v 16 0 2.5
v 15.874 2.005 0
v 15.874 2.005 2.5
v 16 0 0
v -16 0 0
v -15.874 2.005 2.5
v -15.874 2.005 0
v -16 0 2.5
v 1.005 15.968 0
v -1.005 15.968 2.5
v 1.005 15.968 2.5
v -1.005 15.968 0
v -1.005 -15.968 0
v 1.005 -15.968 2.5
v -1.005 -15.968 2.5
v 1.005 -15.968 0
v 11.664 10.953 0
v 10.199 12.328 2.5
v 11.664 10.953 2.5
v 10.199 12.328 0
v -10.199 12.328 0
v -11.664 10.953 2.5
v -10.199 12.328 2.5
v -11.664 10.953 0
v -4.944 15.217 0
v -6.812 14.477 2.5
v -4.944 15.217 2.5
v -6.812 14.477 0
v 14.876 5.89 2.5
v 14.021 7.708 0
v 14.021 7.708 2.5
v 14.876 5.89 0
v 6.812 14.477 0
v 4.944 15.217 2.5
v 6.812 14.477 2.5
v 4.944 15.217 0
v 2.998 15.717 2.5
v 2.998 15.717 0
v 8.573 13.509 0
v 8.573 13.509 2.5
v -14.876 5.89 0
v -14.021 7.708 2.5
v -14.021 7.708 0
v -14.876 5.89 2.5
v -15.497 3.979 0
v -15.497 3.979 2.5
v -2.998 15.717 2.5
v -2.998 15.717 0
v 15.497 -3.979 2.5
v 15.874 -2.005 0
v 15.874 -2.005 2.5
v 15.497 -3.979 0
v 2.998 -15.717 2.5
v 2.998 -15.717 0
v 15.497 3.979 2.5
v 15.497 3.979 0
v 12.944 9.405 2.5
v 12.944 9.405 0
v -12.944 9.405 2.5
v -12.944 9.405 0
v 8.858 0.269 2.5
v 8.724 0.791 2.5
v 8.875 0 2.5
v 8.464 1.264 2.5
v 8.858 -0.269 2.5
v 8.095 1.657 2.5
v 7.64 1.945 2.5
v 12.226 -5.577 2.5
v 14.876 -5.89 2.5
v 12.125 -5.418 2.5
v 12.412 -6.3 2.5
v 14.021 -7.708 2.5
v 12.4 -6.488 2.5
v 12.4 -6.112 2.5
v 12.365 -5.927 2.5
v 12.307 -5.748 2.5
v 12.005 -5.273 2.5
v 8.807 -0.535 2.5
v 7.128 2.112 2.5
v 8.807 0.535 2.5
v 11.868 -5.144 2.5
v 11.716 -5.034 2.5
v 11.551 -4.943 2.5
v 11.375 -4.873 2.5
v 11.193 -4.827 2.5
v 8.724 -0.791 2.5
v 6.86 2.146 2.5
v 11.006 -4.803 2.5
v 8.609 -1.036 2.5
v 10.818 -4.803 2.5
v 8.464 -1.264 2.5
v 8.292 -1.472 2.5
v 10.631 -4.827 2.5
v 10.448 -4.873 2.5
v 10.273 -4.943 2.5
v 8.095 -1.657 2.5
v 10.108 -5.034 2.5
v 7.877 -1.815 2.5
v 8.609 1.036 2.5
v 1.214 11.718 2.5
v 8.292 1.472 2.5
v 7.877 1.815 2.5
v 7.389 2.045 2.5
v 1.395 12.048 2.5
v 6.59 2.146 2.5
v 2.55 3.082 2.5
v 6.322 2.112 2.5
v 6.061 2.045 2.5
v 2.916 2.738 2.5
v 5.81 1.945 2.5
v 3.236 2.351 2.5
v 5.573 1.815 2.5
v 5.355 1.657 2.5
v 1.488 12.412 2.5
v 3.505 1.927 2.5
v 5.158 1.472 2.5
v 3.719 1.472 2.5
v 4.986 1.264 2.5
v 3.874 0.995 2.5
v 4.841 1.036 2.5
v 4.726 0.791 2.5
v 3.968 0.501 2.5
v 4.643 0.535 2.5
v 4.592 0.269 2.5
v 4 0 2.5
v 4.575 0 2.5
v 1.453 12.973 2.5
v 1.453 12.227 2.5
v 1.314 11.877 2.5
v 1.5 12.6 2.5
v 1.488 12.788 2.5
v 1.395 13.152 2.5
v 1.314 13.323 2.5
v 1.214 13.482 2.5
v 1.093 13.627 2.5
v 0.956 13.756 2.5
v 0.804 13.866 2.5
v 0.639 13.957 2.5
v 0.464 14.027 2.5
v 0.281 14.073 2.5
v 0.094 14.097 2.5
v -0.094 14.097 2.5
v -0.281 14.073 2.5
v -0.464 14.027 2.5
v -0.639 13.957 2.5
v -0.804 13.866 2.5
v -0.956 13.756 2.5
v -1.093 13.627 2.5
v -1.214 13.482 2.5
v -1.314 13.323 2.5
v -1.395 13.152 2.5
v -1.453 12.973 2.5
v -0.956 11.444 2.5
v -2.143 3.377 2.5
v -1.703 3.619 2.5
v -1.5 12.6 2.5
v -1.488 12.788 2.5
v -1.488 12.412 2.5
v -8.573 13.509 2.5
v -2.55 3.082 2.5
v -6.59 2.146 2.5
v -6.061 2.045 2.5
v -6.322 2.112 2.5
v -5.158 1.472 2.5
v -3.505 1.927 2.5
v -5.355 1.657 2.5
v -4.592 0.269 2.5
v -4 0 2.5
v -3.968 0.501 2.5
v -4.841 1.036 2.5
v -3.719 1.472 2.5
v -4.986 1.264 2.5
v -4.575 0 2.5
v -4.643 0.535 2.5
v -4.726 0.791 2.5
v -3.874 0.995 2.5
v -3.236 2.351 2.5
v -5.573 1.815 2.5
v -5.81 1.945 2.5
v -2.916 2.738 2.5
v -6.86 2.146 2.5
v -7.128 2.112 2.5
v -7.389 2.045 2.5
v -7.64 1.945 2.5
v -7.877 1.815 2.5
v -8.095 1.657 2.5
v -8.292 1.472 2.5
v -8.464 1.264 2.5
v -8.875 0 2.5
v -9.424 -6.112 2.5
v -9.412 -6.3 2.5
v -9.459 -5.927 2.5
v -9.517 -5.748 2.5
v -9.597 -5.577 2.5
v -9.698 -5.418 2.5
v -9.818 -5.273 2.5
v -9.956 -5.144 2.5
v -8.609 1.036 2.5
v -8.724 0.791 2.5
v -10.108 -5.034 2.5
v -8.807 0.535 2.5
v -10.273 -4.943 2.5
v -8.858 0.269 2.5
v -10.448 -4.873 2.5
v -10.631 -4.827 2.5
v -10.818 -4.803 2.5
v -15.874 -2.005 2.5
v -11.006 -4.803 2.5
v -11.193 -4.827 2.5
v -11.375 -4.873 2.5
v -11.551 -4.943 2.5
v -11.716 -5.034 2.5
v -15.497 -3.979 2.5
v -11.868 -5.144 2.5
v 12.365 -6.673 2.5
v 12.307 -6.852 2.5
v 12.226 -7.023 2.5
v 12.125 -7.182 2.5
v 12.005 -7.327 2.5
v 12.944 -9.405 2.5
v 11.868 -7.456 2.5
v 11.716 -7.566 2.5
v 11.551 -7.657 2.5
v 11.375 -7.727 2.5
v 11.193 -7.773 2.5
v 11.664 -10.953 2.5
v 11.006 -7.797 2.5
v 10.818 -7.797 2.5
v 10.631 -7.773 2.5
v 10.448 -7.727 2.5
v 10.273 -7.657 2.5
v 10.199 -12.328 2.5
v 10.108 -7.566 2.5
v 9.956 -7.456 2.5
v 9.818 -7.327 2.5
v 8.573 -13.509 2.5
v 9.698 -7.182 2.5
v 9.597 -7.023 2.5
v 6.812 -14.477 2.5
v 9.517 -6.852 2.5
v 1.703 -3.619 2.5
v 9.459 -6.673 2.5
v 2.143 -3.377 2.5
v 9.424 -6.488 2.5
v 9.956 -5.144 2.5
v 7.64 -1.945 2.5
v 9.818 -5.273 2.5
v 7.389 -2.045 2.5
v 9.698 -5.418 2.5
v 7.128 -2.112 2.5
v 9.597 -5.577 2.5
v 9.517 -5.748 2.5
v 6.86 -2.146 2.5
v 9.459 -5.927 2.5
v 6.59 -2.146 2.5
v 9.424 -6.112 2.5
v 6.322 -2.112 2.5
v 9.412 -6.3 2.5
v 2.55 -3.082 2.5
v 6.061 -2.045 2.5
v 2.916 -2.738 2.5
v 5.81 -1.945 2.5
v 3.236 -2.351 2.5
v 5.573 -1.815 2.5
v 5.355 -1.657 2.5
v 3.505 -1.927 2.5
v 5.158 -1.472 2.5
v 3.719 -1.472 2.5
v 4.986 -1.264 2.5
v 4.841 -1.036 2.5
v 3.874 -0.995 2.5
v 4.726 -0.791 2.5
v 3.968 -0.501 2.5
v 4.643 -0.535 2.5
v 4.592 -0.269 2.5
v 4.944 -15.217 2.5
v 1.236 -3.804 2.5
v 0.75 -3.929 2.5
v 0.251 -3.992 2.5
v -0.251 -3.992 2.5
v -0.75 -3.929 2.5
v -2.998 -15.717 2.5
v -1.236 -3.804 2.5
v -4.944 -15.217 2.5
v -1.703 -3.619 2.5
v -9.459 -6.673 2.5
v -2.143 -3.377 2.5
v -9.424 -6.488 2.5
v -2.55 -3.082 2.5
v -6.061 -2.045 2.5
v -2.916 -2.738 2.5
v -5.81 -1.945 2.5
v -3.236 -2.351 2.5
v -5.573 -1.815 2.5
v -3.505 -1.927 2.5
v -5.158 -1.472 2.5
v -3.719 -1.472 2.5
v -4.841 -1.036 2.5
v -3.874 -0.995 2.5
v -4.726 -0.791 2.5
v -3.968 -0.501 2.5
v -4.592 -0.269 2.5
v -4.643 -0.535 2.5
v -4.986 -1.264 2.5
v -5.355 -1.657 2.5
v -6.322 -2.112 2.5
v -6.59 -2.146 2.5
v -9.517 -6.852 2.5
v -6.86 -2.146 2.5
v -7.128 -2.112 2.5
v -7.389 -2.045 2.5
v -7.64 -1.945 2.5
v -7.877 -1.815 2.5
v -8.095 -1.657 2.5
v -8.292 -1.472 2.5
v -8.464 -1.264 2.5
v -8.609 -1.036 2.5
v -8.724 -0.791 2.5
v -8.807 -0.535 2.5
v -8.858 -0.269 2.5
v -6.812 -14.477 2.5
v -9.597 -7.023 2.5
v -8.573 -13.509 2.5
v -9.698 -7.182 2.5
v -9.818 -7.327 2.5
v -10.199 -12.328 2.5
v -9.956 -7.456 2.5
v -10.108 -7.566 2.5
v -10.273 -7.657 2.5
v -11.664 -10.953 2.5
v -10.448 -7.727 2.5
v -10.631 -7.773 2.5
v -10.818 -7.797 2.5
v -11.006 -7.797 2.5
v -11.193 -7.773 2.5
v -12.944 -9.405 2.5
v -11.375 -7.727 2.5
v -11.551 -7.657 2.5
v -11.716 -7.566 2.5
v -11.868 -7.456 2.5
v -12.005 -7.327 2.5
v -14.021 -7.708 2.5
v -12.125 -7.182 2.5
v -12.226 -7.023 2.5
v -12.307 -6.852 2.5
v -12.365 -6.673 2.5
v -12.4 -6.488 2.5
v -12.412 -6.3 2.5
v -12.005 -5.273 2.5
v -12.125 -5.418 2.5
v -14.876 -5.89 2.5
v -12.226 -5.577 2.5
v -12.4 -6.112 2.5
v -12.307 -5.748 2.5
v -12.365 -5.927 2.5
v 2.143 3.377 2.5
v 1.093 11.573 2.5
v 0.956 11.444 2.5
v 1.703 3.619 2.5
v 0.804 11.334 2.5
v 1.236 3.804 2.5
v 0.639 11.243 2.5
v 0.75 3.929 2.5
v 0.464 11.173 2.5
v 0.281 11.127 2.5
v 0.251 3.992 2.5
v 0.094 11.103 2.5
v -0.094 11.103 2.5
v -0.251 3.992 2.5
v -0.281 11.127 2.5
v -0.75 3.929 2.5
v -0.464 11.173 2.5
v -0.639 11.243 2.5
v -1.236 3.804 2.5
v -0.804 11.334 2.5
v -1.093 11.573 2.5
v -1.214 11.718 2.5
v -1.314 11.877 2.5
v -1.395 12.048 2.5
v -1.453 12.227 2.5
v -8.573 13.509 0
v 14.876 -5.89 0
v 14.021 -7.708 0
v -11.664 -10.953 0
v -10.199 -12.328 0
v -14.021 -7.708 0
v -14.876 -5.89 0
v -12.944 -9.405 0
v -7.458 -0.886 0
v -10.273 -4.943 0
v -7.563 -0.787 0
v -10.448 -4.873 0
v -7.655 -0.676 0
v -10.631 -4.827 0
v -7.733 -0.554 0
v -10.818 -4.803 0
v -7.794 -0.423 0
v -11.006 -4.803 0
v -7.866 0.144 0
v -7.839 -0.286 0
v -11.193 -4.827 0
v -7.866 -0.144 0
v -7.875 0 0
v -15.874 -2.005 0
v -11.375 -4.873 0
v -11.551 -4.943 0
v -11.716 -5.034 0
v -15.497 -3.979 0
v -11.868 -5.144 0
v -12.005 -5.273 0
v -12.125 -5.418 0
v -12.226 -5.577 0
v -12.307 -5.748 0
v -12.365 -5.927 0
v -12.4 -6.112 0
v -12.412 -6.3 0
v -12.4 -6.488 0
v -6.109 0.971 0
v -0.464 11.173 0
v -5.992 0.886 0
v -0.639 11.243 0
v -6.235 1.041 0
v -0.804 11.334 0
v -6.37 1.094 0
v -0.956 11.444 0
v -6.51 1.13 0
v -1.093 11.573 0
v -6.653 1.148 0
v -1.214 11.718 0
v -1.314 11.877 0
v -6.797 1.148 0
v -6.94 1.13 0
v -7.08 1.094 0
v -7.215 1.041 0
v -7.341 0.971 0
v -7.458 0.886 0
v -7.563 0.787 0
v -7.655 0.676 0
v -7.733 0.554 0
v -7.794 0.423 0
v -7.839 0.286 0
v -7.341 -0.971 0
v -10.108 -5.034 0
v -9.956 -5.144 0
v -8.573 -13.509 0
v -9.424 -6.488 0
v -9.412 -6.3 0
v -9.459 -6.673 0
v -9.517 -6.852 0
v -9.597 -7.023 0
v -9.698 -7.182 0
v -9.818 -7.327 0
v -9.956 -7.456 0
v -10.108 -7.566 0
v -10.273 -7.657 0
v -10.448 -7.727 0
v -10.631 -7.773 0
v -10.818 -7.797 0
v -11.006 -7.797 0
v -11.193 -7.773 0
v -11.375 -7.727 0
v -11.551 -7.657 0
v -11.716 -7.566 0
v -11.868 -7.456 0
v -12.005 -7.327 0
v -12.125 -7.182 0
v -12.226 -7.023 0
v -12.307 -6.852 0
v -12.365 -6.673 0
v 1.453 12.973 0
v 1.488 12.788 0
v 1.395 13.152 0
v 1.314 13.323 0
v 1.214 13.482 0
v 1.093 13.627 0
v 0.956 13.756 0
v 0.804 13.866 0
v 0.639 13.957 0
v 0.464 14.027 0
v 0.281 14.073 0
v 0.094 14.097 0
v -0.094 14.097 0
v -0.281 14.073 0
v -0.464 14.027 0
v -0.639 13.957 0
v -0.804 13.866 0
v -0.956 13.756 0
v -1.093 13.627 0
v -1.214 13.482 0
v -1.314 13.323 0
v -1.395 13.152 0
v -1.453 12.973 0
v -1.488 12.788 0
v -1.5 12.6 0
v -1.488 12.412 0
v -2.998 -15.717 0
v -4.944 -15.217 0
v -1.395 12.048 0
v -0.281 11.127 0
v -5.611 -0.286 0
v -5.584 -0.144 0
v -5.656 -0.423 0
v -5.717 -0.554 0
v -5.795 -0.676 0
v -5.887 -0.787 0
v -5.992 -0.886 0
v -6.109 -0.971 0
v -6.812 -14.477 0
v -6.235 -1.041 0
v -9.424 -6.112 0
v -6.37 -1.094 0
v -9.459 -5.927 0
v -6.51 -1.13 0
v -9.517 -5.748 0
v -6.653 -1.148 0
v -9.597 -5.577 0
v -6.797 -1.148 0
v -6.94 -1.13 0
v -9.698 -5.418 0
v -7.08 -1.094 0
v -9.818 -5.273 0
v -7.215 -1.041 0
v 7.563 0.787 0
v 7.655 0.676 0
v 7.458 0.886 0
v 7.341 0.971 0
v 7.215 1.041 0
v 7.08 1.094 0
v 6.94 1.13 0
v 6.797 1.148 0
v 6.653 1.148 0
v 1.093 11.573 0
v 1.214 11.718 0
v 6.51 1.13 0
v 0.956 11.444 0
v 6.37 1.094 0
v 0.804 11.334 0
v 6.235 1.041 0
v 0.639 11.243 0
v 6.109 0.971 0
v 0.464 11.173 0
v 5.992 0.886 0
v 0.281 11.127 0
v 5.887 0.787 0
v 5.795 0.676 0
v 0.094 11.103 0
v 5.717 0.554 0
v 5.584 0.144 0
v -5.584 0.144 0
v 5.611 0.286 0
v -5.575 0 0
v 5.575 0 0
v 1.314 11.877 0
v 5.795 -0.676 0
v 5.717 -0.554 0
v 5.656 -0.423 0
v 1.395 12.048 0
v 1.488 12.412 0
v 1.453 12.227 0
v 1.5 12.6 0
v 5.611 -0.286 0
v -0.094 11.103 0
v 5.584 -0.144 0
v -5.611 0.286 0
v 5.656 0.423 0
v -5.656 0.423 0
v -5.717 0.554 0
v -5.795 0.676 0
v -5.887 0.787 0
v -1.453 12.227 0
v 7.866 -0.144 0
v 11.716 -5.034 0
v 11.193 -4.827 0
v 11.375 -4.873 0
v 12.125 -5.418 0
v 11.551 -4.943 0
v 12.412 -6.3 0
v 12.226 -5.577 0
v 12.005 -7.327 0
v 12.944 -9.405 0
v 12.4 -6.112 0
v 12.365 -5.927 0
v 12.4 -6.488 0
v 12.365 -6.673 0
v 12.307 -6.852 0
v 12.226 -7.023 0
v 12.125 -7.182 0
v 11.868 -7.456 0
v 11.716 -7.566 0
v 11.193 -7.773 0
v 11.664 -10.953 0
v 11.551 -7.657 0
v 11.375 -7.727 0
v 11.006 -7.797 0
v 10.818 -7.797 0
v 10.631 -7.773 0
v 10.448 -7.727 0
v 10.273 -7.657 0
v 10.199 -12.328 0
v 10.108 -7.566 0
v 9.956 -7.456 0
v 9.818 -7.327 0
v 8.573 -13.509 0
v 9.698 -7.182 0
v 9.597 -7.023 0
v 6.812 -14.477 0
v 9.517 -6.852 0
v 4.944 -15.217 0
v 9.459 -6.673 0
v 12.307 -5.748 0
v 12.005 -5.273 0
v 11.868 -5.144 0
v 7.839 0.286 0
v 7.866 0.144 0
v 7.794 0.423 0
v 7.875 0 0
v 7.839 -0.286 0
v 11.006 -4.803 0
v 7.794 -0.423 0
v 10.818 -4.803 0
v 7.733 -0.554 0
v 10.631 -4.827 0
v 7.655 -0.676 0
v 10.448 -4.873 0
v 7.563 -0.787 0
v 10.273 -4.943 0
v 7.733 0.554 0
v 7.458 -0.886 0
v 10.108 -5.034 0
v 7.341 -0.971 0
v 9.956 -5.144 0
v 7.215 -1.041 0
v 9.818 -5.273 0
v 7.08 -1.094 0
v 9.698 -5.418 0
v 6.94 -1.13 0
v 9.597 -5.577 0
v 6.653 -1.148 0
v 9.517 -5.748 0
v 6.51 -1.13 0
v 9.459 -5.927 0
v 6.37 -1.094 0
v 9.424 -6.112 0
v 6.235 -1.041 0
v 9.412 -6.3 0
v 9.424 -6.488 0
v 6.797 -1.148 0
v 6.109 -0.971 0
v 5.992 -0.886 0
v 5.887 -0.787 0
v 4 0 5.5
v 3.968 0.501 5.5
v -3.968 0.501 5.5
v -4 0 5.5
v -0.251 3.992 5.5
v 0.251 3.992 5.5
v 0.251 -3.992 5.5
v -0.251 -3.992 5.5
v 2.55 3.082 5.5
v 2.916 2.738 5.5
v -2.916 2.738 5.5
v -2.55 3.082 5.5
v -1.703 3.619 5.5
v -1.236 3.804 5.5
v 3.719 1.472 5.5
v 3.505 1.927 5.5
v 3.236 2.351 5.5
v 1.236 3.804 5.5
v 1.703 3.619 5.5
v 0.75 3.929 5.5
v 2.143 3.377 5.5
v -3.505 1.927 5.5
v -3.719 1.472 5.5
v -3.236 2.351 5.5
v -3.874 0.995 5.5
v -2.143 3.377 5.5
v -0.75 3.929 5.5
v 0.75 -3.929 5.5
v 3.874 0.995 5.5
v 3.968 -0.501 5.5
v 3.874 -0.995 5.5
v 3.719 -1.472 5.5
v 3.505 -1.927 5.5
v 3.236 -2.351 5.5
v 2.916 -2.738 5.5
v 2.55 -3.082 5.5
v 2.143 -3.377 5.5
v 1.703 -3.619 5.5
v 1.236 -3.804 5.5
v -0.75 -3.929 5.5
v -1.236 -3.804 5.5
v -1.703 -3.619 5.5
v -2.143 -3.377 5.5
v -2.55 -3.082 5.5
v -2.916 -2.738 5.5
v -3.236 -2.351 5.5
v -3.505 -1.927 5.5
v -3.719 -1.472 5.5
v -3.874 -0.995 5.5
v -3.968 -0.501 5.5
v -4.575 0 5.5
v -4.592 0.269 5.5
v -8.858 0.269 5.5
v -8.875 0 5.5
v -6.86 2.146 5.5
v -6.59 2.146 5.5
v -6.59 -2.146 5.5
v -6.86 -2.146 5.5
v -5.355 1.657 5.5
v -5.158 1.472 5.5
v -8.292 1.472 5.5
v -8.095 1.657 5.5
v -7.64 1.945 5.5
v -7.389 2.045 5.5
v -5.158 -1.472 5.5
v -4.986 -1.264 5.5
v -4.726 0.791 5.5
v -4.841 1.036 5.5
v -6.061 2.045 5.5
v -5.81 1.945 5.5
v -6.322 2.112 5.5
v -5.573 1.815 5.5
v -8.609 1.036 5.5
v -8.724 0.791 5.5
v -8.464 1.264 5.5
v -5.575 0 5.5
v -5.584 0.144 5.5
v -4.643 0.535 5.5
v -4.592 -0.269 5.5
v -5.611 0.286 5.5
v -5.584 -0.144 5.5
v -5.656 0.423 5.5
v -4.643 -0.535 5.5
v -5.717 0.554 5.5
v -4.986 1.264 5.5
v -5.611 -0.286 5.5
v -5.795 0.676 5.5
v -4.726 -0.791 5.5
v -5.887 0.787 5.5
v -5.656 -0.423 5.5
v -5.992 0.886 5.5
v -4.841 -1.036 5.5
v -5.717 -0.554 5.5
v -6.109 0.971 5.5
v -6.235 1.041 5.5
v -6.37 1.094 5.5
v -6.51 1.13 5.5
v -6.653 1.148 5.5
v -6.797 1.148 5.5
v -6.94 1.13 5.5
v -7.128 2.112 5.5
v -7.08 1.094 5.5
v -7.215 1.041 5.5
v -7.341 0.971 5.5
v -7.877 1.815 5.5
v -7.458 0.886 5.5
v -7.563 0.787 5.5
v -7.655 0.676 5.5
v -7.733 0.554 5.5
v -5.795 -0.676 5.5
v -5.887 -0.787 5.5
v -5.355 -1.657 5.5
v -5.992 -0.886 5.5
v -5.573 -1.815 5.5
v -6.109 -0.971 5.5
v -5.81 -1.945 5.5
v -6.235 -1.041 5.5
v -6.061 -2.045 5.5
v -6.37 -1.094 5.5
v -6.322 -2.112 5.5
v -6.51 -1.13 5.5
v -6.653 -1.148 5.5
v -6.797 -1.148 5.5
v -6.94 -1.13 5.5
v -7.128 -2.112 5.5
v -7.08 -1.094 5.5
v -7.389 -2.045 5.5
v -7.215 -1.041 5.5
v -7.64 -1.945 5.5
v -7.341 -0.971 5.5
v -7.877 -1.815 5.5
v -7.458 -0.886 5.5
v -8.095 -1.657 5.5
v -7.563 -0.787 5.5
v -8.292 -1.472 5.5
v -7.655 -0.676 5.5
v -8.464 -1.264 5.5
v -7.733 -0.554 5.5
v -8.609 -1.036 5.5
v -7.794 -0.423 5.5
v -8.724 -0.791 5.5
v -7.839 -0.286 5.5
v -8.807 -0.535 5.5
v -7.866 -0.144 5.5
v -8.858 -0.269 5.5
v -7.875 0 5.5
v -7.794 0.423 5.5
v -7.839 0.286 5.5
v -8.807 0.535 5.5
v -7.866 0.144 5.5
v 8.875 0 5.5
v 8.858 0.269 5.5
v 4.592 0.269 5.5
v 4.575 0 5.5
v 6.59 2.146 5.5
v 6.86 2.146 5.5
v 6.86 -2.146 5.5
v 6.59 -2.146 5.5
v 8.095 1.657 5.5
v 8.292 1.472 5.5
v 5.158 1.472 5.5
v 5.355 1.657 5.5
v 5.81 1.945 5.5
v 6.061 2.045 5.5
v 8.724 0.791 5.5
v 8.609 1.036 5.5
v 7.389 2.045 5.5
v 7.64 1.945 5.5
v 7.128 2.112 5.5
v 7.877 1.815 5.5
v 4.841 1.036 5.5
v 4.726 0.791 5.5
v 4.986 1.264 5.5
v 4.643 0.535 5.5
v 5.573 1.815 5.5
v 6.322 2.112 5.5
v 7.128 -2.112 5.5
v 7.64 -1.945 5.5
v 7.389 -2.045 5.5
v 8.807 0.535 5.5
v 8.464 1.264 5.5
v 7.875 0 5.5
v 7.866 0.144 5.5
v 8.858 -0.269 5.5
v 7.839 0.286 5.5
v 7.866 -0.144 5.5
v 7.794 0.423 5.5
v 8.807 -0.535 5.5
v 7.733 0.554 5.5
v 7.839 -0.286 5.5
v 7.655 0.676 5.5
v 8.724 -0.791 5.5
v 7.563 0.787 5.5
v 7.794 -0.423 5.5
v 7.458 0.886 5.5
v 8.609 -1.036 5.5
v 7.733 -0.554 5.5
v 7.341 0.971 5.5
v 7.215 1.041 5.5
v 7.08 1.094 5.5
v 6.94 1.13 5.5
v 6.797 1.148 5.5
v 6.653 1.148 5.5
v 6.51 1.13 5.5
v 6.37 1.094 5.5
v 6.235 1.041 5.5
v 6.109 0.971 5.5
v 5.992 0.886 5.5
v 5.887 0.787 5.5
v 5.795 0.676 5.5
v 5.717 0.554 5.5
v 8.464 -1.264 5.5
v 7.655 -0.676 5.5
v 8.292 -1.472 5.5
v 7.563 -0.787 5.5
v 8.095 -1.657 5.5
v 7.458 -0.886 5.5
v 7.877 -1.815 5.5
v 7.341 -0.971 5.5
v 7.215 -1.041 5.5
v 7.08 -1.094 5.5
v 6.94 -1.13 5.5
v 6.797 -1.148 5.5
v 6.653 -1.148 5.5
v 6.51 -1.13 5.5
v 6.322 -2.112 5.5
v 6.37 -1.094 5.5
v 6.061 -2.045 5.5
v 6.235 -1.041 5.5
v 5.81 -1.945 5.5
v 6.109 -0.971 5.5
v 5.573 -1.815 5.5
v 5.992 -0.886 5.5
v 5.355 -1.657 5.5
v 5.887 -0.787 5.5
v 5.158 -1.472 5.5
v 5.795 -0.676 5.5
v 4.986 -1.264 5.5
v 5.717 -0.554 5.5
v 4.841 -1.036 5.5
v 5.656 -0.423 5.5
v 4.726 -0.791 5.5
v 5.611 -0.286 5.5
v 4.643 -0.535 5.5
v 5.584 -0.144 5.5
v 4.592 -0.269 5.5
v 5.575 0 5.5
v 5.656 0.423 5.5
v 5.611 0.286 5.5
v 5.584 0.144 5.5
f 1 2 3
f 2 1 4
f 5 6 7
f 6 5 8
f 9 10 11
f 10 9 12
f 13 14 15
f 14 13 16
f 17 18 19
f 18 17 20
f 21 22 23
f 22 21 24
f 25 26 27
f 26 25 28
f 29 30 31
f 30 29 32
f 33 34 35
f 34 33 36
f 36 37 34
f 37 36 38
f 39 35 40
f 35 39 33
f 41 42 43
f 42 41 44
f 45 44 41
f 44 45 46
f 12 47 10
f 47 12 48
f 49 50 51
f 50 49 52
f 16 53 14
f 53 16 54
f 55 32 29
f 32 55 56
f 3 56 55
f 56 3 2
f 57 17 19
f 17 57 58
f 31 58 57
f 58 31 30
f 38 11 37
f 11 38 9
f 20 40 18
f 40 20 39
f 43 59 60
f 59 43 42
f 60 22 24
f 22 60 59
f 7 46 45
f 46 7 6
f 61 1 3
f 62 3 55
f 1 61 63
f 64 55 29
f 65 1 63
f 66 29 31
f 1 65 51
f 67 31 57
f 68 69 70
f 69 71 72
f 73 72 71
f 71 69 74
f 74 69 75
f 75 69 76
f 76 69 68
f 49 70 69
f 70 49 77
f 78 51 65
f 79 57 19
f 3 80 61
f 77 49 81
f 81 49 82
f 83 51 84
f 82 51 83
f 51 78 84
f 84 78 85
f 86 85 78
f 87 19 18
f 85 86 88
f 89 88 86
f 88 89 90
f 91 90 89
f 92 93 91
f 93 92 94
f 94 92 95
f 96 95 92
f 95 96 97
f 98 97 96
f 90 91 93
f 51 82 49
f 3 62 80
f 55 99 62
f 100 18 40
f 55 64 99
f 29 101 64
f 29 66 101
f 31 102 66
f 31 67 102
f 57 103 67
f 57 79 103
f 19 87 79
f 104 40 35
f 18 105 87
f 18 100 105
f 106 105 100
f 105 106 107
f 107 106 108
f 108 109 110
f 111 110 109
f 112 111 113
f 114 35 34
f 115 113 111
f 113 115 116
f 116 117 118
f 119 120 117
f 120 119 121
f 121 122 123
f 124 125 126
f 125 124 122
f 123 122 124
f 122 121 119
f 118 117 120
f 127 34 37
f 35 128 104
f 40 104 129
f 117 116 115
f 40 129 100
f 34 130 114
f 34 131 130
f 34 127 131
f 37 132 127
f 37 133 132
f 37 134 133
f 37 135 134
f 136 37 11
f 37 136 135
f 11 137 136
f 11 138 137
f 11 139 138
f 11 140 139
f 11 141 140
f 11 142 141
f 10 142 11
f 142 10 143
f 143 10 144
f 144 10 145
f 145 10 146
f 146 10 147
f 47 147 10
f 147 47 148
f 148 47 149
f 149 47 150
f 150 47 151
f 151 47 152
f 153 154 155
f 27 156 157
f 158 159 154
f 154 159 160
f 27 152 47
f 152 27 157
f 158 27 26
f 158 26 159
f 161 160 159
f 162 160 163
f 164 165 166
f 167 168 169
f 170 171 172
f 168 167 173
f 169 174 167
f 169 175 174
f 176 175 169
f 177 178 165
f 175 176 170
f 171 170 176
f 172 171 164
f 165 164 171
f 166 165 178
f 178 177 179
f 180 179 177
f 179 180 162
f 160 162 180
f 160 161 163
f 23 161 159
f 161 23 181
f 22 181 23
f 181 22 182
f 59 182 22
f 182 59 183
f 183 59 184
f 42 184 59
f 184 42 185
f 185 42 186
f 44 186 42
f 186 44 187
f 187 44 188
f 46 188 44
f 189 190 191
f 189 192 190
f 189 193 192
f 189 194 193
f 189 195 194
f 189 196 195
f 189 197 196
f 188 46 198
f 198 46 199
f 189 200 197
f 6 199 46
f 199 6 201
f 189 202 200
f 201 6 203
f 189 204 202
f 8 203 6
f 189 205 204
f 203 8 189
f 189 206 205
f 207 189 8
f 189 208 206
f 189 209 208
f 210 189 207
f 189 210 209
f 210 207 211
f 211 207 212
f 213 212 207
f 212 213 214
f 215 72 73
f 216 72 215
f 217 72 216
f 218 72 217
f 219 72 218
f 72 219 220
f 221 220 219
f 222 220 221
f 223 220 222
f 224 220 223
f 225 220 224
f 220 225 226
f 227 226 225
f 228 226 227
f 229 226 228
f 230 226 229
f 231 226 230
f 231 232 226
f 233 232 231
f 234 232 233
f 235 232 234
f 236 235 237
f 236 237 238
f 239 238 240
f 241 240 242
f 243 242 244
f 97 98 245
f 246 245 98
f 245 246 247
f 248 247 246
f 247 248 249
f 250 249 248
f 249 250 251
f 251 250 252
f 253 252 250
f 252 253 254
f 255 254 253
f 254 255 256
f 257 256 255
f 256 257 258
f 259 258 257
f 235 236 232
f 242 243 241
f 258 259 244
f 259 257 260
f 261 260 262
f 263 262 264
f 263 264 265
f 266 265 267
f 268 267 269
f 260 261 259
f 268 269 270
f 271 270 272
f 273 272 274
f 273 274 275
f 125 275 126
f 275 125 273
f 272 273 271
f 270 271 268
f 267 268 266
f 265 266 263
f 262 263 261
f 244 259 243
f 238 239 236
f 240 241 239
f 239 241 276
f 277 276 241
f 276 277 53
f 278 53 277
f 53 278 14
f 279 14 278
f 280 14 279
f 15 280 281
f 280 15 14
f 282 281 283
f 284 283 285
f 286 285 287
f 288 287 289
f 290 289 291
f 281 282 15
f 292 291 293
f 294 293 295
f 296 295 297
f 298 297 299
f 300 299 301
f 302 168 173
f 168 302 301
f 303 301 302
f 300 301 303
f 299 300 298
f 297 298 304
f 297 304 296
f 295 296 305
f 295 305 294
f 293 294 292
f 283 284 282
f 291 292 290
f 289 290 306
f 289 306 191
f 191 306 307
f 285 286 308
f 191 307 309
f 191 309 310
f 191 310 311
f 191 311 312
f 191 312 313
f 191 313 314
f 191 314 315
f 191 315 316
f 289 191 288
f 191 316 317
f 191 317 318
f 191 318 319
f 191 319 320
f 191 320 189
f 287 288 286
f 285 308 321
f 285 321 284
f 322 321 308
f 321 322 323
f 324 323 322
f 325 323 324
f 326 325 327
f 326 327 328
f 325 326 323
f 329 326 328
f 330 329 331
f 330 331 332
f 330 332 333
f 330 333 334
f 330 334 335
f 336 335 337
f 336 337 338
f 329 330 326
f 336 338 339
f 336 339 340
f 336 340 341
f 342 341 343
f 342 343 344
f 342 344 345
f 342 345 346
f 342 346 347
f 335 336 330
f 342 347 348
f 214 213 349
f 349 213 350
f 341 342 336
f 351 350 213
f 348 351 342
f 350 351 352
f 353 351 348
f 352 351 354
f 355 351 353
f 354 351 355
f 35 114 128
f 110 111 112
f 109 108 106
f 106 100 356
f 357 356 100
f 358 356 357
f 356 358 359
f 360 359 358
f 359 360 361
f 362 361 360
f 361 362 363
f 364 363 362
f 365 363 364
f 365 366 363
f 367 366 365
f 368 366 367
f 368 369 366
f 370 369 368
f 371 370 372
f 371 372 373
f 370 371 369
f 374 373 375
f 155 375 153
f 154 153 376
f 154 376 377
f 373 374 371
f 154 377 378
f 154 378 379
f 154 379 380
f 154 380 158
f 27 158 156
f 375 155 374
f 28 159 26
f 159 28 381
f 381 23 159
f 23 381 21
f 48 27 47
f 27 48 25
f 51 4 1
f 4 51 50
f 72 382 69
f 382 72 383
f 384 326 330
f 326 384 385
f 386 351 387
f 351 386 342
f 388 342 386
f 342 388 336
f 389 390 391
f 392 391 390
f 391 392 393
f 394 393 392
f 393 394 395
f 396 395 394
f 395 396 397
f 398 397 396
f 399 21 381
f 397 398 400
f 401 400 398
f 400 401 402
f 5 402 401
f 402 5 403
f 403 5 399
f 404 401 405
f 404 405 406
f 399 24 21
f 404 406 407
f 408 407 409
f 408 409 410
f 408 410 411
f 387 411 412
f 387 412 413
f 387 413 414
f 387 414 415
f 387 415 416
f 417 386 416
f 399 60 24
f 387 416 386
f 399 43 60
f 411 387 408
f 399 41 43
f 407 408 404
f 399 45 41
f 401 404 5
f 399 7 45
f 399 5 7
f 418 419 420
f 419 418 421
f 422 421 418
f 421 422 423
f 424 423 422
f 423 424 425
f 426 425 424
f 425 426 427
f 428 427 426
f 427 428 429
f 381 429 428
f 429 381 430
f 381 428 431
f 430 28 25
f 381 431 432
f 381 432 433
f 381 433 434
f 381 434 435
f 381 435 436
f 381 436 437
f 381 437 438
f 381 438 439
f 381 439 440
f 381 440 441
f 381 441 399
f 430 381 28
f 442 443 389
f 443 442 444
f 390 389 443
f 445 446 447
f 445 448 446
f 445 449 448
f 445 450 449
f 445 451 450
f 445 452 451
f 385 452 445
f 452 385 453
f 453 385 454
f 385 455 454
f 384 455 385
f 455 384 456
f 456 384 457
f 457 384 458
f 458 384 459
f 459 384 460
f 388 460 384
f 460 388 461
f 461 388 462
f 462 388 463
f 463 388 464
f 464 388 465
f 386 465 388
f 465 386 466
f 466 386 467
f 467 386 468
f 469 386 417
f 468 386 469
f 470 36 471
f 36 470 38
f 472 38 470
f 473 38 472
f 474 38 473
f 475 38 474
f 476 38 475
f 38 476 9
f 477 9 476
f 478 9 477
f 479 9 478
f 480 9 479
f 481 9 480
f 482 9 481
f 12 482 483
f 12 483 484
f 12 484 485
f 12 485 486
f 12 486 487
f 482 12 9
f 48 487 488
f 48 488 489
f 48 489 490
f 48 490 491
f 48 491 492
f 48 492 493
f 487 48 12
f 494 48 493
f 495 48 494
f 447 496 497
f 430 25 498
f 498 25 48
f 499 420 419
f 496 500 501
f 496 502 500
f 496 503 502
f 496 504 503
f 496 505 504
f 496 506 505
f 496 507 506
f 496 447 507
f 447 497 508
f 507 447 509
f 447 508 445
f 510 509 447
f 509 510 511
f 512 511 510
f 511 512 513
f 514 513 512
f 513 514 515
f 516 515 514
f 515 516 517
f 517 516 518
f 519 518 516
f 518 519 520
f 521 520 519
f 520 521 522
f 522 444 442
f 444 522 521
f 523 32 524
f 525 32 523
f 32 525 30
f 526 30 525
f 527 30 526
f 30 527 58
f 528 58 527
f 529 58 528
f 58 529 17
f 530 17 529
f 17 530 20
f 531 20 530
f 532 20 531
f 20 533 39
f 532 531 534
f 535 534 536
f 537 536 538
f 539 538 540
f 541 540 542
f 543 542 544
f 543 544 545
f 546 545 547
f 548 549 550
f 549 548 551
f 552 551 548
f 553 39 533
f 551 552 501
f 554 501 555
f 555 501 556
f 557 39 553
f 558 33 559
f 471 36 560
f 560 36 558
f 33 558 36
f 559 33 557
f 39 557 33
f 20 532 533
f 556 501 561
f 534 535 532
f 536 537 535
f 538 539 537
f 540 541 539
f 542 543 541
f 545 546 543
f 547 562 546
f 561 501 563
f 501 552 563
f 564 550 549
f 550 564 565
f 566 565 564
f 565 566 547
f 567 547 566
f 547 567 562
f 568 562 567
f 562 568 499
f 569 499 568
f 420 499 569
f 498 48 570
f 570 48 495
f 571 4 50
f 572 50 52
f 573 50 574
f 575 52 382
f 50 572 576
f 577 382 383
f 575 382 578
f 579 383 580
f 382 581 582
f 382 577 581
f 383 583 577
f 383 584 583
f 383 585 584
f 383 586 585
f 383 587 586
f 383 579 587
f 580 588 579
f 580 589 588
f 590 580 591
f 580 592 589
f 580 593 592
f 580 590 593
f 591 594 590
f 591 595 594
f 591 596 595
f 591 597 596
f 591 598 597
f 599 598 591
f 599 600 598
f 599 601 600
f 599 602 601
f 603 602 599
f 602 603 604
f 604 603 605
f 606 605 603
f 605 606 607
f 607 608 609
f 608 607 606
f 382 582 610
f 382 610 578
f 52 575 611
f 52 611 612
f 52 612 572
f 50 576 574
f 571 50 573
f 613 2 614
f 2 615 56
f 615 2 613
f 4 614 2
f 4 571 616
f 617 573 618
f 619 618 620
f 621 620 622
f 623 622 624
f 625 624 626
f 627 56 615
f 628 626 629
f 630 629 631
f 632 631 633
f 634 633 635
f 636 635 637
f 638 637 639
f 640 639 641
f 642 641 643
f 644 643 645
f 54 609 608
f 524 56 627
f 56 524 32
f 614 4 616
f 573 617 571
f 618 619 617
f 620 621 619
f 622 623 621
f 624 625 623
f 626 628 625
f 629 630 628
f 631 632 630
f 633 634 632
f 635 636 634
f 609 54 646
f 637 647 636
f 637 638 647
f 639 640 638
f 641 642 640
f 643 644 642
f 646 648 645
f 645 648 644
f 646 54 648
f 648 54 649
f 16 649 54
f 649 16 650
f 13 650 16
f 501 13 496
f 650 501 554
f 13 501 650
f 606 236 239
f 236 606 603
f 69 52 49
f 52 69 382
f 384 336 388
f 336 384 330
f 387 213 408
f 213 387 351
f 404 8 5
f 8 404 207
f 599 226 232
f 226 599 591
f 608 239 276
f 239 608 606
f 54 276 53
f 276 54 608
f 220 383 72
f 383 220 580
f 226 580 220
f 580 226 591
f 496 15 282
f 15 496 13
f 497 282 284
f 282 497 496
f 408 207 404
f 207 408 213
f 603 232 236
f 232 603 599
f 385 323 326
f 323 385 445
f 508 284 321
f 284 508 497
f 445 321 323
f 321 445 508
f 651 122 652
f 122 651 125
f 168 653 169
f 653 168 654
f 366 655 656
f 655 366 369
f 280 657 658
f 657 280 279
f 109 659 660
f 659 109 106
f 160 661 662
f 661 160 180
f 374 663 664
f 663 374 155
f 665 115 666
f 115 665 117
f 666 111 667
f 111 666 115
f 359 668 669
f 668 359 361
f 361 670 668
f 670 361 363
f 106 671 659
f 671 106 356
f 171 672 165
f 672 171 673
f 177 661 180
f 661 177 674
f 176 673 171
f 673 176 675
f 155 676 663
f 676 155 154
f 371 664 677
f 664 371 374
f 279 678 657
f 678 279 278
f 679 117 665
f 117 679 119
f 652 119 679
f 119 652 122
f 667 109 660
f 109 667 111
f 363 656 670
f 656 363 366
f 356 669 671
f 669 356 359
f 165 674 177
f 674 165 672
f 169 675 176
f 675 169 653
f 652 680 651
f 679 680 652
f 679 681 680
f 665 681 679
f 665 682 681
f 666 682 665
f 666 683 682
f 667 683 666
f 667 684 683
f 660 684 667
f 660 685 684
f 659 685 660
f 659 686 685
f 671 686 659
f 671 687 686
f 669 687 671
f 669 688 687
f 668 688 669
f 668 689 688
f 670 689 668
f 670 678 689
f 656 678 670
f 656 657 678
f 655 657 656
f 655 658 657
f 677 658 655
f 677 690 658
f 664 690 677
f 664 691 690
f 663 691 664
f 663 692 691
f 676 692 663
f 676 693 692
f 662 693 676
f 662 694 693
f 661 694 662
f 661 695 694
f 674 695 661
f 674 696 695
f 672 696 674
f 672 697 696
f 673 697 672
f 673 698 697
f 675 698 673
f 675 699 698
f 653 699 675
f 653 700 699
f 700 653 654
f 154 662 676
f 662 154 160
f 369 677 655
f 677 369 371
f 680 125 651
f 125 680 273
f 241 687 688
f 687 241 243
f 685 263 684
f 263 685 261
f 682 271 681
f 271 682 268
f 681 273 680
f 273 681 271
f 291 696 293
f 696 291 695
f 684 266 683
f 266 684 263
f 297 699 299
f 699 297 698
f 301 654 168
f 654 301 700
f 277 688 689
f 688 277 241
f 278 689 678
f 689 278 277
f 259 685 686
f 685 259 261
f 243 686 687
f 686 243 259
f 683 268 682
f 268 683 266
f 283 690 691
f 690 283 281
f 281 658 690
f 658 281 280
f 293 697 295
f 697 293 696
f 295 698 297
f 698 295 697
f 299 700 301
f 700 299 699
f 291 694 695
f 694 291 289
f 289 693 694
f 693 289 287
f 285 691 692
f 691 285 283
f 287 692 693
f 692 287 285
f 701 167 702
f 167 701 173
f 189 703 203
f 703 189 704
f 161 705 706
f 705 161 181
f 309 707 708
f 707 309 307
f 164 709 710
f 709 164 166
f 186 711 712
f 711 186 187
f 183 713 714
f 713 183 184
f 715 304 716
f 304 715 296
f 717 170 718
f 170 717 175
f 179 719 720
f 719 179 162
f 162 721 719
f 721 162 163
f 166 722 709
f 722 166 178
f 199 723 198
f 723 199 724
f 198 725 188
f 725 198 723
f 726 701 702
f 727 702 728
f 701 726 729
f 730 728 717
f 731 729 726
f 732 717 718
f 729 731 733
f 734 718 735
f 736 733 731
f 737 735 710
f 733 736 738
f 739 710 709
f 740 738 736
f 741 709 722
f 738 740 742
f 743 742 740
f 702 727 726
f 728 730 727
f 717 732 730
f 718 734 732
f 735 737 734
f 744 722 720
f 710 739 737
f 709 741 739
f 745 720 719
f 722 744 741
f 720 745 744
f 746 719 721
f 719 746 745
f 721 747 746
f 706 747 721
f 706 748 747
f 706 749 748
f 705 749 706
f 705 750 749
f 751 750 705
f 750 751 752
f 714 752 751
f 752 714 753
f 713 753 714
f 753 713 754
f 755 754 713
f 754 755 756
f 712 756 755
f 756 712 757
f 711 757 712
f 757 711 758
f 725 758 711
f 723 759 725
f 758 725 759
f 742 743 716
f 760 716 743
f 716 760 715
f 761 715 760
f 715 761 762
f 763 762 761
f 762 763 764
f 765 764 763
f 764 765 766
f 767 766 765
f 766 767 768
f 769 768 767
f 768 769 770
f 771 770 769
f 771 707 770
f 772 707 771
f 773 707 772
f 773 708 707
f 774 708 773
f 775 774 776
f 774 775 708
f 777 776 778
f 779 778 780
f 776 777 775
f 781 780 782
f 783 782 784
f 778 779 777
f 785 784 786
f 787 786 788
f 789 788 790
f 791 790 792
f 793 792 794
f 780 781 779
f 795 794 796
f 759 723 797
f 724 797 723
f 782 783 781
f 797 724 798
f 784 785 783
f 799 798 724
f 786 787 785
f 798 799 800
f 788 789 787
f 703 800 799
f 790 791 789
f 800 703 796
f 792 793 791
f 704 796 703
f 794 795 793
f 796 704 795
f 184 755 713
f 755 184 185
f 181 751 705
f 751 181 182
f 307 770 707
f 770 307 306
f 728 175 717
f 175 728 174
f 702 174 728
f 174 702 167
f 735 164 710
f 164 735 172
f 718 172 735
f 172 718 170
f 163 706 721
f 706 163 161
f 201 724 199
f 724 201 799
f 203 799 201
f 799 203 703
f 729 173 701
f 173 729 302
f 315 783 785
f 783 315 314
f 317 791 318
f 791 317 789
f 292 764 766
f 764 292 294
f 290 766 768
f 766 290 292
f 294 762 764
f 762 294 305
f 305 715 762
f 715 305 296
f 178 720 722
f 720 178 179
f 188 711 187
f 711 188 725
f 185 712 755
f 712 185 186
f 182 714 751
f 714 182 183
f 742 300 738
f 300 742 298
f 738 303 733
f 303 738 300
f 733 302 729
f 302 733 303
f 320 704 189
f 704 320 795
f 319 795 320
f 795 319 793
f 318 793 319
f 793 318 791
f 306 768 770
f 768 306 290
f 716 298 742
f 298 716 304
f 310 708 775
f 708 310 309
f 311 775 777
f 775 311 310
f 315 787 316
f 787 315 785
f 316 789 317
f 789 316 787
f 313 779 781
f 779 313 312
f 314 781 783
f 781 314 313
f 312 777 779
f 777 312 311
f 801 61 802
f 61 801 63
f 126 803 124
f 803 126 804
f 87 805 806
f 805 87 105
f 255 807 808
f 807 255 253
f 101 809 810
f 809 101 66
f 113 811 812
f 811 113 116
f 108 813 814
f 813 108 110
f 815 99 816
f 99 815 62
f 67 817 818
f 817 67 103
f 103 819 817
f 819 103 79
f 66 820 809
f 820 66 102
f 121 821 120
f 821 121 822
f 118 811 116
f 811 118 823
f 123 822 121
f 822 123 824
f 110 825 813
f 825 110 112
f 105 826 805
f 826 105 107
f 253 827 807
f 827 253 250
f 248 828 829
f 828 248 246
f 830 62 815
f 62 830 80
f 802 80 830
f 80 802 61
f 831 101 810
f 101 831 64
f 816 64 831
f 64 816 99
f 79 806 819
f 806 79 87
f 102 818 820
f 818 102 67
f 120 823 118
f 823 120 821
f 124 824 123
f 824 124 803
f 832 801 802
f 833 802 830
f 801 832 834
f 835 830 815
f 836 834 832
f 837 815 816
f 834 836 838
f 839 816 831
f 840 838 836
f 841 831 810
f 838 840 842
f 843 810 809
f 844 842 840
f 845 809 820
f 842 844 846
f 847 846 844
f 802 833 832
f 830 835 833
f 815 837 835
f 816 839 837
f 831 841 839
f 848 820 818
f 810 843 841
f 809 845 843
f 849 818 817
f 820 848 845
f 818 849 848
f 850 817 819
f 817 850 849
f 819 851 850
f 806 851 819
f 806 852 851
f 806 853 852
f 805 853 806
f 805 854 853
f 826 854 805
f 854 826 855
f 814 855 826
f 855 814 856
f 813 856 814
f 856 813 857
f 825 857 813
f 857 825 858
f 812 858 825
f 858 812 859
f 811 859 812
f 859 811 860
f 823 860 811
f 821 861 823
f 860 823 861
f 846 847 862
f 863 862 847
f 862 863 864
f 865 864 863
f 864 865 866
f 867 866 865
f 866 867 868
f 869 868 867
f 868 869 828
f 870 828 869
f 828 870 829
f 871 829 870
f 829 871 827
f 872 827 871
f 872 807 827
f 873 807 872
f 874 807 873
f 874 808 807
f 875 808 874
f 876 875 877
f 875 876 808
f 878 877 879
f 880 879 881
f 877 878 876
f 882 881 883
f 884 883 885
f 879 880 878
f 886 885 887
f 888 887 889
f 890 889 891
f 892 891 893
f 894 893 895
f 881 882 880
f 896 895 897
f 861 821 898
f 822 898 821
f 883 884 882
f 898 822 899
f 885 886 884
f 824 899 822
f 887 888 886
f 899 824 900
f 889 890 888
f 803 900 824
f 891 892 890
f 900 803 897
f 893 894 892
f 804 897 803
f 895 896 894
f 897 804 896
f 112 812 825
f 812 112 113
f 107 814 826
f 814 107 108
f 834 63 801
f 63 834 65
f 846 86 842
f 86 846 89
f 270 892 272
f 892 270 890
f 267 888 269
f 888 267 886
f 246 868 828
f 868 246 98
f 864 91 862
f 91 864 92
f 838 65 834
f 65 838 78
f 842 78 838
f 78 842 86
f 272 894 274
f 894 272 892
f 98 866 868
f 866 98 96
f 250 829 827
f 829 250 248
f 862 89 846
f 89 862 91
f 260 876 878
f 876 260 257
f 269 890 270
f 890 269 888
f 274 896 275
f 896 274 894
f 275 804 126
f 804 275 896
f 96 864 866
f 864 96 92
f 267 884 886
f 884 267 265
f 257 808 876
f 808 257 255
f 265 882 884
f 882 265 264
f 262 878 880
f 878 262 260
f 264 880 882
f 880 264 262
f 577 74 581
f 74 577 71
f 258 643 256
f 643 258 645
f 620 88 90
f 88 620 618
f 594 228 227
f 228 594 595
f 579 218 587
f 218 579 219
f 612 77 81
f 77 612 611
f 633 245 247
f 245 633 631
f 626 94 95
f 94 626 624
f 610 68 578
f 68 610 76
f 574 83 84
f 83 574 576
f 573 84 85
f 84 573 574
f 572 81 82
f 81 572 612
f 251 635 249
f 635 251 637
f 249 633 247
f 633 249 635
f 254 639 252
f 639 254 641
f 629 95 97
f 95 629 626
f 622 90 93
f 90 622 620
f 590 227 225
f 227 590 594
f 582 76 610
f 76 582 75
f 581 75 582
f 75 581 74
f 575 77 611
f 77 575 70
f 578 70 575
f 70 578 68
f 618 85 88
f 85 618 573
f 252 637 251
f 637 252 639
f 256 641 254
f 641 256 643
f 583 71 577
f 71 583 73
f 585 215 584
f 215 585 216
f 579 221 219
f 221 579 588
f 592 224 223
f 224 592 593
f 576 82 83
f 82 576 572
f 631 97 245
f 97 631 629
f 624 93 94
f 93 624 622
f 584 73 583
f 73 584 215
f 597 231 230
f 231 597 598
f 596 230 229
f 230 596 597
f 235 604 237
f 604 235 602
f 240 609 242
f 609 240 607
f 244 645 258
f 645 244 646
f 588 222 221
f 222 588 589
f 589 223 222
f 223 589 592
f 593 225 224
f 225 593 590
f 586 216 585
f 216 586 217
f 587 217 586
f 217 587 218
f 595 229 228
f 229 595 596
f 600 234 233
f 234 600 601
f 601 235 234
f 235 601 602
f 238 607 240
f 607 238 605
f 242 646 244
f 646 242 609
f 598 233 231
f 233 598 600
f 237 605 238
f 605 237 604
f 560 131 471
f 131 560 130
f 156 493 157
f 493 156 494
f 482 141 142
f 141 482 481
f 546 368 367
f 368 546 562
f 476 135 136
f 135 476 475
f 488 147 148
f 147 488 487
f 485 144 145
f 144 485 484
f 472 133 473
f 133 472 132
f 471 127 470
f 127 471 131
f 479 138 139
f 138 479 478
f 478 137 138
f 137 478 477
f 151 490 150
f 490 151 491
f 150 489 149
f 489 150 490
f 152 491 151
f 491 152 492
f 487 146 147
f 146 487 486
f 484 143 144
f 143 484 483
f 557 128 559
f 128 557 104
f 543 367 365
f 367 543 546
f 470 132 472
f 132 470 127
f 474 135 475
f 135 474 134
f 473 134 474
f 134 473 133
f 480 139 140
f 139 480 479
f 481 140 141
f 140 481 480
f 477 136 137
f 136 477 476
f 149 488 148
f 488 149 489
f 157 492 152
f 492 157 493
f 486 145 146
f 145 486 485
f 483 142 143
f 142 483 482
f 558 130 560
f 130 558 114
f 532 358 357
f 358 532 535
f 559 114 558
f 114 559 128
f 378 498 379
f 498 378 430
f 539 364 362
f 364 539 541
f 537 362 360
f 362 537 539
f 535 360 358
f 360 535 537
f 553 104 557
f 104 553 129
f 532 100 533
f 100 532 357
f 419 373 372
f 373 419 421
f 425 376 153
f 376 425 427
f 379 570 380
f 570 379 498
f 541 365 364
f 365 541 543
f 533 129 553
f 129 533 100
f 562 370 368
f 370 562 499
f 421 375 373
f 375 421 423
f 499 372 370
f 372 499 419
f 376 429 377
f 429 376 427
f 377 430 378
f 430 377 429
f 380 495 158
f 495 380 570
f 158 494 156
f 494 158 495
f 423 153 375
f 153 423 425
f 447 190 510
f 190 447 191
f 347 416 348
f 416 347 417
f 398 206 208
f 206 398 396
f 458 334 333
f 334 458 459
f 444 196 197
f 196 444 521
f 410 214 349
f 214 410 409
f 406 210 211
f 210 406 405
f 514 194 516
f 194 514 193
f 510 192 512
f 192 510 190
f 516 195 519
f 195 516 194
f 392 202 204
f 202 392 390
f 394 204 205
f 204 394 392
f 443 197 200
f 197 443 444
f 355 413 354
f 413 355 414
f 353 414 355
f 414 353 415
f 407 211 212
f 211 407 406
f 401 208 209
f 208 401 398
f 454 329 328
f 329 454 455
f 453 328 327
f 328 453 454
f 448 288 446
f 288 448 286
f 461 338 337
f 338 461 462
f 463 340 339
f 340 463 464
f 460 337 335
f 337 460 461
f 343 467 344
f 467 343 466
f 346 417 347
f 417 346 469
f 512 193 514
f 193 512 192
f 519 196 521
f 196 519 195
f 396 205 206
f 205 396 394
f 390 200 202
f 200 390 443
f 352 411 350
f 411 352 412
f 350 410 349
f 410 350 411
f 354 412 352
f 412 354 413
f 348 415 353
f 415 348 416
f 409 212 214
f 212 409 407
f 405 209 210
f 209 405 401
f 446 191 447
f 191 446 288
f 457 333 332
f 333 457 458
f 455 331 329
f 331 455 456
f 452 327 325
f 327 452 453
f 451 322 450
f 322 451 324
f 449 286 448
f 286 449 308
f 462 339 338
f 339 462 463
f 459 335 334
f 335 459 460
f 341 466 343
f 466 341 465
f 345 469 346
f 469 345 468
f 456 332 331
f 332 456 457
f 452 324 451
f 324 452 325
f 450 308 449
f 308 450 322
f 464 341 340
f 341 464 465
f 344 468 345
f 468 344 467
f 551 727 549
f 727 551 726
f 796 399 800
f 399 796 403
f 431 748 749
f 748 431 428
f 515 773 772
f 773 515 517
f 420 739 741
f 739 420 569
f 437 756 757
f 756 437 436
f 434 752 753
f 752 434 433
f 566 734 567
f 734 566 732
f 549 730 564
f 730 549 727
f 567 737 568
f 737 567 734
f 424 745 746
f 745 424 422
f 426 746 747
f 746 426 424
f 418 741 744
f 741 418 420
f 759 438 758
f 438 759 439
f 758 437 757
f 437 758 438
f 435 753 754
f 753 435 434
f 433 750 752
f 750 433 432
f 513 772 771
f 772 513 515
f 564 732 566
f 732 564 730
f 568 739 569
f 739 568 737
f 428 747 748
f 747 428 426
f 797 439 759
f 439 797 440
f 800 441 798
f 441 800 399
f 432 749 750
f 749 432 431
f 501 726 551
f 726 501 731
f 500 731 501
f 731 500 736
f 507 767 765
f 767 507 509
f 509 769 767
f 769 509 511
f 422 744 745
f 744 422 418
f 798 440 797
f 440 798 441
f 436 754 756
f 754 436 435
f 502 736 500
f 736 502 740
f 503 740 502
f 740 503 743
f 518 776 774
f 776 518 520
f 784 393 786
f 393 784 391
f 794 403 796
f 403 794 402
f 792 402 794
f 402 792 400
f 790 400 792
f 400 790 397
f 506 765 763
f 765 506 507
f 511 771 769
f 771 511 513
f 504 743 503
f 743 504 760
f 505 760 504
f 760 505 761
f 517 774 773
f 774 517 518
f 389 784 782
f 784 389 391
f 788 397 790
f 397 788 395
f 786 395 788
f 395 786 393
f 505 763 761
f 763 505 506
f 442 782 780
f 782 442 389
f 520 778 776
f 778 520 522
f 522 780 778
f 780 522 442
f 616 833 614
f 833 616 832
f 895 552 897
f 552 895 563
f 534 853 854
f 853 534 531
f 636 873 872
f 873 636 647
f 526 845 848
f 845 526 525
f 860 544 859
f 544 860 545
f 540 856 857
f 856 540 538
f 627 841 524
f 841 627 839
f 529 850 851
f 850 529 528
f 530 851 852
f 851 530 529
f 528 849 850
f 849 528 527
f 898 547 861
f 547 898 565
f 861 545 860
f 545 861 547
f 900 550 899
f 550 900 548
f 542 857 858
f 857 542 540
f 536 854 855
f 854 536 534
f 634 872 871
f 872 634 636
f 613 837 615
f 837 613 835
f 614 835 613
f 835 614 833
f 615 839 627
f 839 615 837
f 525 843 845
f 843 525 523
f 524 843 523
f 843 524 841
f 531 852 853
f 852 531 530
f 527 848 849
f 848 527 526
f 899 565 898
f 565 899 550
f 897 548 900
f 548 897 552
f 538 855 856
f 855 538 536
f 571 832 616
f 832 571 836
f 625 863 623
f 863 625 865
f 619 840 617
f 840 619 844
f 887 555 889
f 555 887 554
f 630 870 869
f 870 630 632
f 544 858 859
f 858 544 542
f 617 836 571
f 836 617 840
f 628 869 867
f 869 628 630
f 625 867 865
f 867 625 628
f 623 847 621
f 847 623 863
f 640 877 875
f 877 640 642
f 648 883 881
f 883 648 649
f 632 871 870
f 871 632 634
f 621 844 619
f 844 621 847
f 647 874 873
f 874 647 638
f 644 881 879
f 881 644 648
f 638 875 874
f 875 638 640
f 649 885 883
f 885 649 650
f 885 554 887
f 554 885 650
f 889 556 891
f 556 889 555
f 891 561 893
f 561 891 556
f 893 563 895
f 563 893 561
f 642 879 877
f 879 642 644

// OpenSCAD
$fn=50;

module support_roulette_a_bille(H=3,e=2.5)
{
    difference(){
        union(){	
            cylinder(d=32,h=e);
            cylinder(d=8,h=e+H);
            translate([1.65+2.3/2-19.05/2,0,0])cylinder(d=2.3+2,h=e+H);
            translate([-(1.65+2.3/2-19.05/2),0,0])cylinder(d=2.3+2,h=e+H);
        }
	    for(i=[0:2]){
            translate([12.6*cos(i*120-30),12.6*sin(i*120-30),-0.01])cylinder(d=3,h=e+0.02);
            }
        translate([1.65+2.3/2-19.05/2,0,-0.01])cylinder(d=2.3,h=e+10.16+0.02);
	    translate([19.05/2-(1.65+2.3/2),0,-0.01])cylinder(d=2.3,h=e+10.16+0.02);   
  }  
}

support_roulette_a_bille(3,2.5);
